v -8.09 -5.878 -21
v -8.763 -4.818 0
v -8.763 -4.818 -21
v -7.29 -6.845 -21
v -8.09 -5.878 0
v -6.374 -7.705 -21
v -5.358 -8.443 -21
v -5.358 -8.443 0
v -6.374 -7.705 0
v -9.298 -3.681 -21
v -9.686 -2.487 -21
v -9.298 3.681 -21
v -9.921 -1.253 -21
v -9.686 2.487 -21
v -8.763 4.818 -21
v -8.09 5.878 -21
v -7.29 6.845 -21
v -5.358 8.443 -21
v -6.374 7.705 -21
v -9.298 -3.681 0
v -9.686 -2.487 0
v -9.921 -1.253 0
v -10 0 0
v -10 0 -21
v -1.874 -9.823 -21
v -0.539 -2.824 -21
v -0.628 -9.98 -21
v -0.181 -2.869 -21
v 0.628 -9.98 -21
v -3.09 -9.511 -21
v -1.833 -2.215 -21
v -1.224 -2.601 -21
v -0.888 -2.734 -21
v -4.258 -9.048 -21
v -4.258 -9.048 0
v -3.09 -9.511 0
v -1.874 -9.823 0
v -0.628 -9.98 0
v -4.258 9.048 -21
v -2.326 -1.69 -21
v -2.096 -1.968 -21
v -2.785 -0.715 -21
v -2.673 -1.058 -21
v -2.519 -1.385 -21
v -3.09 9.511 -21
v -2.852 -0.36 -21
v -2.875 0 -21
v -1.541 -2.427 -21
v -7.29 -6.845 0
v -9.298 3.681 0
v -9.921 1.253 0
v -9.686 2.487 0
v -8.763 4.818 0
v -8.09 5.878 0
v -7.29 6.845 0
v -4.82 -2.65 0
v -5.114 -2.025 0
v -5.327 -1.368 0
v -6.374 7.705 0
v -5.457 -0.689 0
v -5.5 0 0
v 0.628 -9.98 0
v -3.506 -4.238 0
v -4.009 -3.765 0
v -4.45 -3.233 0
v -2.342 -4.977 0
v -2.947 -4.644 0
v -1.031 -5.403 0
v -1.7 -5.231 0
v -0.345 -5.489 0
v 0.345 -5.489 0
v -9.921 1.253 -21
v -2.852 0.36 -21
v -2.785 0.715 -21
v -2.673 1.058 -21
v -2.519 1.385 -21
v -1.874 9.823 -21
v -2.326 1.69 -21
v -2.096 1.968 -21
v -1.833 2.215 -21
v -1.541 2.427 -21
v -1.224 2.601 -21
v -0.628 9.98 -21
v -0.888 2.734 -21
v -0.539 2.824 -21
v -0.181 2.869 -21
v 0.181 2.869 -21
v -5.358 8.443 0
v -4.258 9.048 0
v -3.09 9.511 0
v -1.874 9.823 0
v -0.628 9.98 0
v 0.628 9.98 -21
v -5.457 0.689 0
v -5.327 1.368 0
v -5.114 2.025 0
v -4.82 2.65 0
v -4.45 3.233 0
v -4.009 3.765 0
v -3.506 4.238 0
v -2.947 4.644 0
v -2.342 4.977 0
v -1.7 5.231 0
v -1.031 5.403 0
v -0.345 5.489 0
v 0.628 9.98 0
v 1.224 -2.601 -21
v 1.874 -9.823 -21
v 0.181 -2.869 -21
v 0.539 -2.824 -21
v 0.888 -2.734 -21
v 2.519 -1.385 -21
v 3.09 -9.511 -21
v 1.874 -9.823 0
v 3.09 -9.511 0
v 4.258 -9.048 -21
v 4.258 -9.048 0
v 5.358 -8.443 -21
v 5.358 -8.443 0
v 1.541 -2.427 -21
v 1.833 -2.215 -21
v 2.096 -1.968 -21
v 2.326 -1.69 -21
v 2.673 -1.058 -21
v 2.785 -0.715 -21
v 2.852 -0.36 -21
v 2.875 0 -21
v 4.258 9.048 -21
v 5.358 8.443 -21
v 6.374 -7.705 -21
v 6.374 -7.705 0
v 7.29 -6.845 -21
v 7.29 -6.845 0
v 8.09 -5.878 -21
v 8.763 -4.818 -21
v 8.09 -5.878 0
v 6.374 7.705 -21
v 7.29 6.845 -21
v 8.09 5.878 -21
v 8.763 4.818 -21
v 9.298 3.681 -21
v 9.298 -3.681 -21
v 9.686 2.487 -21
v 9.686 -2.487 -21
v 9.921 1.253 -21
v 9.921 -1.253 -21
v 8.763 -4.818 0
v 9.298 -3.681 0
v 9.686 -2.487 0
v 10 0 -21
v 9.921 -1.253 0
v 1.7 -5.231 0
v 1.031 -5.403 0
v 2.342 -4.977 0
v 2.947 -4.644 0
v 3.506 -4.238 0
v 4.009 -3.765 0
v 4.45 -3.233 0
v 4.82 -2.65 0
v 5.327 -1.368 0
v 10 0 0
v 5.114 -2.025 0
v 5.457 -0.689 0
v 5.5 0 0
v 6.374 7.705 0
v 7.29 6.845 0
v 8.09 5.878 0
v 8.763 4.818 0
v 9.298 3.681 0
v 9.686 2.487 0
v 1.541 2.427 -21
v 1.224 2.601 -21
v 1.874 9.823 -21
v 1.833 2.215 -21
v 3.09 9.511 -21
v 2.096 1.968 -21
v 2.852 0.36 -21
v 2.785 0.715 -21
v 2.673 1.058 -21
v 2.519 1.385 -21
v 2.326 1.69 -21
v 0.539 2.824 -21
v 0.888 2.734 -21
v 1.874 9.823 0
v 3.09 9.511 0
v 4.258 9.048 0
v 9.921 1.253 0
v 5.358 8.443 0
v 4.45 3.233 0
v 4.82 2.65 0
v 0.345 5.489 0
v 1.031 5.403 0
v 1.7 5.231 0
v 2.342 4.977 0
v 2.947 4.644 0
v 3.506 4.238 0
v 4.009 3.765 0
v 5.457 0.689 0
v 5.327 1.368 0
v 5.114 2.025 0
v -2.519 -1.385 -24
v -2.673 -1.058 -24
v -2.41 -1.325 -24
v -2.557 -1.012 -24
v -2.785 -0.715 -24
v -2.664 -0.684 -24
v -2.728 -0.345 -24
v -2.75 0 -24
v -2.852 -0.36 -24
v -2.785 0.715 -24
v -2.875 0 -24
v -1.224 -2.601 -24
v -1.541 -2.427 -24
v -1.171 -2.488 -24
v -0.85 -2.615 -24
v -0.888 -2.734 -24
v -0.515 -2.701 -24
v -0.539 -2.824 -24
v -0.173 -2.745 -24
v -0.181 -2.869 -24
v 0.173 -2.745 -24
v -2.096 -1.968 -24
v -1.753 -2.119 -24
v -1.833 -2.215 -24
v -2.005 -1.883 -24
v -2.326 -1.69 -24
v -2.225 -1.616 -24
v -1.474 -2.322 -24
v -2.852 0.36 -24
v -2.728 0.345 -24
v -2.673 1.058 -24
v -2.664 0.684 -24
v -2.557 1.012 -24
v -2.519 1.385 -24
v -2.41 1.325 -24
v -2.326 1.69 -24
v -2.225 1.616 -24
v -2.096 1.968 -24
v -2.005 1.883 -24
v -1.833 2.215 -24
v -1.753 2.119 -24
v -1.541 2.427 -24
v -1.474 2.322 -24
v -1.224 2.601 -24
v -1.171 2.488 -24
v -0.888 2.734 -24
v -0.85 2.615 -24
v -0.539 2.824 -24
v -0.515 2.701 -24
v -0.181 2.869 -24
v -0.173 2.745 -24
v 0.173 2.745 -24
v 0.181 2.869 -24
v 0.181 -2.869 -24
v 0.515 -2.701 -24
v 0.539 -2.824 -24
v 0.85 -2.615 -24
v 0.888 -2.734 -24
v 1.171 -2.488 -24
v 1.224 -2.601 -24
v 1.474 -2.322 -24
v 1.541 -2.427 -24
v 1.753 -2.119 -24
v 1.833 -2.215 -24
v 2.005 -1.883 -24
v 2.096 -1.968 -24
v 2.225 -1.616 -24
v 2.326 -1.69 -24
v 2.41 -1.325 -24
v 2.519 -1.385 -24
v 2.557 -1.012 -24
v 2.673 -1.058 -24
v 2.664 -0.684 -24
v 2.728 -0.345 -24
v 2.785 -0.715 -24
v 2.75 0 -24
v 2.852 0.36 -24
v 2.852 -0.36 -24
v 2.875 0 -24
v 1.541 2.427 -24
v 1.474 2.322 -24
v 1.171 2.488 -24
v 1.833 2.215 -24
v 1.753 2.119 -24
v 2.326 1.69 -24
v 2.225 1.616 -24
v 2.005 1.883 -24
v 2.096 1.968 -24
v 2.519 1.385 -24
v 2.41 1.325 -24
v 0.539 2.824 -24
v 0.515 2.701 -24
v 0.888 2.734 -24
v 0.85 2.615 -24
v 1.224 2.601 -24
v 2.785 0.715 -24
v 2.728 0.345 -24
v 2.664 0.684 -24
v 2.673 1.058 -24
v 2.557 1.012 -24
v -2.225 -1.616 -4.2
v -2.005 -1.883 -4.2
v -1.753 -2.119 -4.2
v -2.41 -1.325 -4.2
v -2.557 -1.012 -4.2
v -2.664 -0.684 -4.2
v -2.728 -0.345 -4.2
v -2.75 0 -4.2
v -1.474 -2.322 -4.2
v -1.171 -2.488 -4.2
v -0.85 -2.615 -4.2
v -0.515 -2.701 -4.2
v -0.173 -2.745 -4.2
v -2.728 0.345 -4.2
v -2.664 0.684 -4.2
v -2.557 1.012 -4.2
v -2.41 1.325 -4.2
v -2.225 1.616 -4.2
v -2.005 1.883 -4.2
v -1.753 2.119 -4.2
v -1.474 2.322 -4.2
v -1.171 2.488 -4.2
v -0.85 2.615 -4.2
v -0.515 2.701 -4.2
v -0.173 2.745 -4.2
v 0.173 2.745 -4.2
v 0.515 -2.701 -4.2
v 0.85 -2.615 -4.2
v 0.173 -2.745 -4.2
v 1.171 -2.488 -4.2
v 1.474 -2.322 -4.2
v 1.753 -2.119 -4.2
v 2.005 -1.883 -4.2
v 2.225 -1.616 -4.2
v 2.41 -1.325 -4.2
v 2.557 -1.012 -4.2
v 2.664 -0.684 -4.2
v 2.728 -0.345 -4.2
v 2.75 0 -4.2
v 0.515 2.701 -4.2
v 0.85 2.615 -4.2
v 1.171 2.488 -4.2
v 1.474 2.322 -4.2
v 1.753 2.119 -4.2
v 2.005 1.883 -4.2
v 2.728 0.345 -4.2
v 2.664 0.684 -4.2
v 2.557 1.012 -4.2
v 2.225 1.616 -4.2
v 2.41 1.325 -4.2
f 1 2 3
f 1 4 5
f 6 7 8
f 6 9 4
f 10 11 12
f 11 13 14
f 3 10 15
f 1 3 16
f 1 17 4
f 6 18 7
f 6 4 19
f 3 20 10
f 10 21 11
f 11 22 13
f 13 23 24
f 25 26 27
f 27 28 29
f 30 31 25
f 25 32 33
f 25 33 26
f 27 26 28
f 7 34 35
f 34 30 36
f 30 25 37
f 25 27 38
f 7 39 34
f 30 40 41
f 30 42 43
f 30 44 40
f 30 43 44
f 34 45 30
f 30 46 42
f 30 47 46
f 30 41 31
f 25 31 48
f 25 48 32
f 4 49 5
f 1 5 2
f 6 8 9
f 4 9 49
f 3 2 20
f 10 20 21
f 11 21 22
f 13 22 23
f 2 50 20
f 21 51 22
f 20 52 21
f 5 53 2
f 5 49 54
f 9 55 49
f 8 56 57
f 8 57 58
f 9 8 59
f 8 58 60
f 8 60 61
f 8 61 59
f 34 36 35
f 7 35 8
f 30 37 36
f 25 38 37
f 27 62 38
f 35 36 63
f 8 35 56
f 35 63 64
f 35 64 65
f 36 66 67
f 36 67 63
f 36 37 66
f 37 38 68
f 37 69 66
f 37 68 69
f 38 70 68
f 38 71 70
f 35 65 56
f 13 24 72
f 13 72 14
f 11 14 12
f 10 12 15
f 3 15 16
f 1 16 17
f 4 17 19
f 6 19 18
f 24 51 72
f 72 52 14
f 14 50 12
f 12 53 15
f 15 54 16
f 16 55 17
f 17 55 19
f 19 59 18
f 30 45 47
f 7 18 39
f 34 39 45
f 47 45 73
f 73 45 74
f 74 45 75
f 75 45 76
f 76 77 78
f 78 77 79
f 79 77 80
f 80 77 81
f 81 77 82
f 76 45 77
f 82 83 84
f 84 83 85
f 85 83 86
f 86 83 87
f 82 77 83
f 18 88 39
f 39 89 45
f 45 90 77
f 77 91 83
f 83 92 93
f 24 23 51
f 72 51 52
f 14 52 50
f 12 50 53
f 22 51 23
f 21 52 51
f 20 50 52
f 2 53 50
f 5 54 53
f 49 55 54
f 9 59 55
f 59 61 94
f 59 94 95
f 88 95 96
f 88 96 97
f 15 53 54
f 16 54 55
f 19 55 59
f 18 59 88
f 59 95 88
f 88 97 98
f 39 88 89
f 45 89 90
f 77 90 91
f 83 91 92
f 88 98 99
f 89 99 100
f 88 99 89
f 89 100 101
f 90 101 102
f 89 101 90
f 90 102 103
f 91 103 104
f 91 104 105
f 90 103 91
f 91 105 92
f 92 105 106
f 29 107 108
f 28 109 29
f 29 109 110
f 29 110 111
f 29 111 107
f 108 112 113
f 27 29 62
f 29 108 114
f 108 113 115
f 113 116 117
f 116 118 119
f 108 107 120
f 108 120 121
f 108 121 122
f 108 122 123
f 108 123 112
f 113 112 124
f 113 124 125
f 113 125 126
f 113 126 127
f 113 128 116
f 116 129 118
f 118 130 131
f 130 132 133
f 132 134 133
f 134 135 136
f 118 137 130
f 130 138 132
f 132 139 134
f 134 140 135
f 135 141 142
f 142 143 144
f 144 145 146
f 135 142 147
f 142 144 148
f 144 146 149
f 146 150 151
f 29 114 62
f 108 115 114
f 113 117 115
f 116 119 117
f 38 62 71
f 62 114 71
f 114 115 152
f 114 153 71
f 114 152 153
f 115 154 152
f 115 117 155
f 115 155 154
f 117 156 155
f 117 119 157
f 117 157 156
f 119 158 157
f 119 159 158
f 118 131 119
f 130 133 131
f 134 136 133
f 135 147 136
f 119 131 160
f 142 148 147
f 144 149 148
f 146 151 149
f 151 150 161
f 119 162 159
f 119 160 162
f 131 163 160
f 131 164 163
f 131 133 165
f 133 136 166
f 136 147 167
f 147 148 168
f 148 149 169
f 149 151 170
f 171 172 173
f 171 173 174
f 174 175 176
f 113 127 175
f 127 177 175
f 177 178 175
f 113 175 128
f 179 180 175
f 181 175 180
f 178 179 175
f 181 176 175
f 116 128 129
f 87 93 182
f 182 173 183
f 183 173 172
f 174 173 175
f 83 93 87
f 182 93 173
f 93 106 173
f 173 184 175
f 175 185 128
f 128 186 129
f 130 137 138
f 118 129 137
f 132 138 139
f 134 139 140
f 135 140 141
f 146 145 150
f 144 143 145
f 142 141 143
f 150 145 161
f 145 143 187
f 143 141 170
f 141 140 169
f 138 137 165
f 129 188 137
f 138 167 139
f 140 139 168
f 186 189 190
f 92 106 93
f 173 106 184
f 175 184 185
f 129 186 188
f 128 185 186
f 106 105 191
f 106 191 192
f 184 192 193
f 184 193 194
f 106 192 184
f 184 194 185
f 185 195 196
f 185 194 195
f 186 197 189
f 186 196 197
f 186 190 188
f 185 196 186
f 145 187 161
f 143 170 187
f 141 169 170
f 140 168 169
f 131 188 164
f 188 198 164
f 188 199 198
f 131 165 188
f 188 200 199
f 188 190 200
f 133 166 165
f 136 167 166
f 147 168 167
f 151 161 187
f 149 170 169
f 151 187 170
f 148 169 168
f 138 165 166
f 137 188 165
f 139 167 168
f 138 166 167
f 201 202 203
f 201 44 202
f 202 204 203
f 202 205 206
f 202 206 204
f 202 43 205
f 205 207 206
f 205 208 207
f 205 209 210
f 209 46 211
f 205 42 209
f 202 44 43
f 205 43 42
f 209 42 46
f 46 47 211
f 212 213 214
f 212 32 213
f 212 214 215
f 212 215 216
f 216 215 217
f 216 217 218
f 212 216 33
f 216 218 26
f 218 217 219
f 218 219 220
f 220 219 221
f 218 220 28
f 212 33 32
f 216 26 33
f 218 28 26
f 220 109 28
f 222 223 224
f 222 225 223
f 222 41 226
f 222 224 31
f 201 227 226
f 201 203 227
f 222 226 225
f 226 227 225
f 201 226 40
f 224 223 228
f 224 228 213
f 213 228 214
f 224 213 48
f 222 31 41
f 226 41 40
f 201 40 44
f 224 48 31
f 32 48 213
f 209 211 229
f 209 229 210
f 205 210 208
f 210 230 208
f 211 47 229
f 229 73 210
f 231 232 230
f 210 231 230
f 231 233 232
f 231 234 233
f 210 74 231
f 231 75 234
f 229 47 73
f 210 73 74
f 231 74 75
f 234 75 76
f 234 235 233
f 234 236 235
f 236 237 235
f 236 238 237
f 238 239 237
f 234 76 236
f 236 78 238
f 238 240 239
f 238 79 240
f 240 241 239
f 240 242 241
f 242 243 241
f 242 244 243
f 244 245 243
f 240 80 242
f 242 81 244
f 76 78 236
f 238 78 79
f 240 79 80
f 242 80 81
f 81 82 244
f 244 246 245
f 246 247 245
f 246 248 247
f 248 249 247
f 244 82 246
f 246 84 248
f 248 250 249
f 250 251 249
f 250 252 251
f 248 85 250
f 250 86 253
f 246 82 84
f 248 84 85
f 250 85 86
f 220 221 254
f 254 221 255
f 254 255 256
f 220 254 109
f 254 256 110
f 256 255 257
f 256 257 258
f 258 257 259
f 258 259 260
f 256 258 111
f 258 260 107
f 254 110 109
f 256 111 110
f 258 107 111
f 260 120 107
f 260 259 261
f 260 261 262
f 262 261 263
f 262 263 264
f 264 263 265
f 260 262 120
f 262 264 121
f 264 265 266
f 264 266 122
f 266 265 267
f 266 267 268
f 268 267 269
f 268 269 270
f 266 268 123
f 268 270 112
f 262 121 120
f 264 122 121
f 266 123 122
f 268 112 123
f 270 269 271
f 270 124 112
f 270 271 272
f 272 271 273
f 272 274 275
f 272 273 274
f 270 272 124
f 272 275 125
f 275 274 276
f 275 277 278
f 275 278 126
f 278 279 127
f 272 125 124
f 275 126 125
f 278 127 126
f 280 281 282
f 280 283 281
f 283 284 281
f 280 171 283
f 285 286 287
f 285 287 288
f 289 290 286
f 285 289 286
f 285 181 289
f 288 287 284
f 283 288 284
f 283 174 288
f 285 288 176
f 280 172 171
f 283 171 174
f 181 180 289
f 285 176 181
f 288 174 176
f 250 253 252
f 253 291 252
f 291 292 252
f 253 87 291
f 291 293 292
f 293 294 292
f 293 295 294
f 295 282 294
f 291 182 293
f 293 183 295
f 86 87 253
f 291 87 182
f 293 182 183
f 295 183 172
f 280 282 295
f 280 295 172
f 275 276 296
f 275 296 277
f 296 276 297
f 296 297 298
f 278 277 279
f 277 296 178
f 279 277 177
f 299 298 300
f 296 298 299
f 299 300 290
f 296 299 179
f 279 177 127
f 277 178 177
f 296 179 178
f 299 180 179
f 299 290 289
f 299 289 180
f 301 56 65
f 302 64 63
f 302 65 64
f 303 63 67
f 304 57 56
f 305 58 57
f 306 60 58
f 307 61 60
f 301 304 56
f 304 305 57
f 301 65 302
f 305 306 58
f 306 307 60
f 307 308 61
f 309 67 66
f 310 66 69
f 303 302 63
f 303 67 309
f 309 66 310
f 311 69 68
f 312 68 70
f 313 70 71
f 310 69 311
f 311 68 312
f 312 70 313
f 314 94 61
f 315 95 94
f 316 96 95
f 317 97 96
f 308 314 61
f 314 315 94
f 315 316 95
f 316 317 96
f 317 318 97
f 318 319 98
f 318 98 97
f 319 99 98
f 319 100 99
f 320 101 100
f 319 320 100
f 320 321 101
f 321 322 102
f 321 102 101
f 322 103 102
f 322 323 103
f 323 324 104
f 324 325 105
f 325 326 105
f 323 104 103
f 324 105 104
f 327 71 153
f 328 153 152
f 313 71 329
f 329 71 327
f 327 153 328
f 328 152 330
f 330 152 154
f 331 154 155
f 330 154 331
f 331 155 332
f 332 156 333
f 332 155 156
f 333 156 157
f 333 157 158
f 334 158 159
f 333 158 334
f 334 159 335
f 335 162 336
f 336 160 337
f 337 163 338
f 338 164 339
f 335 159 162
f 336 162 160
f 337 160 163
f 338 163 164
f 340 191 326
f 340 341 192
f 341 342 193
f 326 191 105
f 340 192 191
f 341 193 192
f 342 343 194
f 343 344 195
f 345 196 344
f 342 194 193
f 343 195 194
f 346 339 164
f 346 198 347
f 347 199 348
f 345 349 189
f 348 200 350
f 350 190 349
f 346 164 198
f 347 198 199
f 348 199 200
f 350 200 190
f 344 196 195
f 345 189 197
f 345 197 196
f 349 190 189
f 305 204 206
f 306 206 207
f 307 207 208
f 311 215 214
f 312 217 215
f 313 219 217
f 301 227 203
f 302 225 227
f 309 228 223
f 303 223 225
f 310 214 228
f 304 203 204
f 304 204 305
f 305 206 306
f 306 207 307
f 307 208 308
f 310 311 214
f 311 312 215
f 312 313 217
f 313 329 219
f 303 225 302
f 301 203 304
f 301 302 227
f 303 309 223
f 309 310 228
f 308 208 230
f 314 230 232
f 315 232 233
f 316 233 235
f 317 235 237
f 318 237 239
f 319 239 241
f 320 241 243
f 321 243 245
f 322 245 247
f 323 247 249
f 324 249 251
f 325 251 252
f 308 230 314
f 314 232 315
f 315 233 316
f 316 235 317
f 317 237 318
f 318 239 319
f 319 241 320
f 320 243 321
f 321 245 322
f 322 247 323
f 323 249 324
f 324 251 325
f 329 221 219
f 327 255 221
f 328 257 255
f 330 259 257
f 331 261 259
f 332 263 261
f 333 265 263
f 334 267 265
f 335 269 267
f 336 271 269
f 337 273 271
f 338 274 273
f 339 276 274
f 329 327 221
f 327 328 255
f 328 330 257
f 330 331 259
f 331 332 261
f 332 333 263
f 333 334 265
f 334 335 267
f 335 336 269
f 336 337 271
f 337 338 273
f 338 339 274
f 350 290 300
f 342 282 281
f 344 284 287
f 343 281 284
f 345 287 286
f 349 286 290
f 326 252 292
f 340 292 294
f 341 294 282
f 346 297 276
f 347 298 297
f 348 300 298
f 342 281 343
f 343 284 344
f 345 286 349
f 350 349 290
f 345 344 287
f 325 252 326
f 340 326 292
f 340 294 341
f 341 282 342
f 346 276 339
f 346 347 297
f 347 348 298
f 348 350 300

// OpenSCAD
$fn = 50;


difference() {
	union() {
		translate(v = [0, 0, -21.0000000000]) {
			cylinder(h = 21, r = 10.0000000000);
		}
		#translate(v = [0, 0, -24.0000000000]) {
			cylinder(h = 24, r = 2.8750000000);
		}
	}
	union() {
		translate(v = [0, 0, 0]) {
			rotate(a = [0, 0, 0]) {
				difference() {
					union() {
						translate(v = [0, 0, -24.0000000000]) {
							cylinder(h = 24, r = 2.2500000000);
						}
						translate(v = [0, 0, -4.2000000000]) {
							cylinder(h = 4.2000000000, r1 = 2.7500000000, r2 = 5.5000000000);
						}
						translate(v = [0, 0, -24.0000000000]) {
							cylinder(h = 24, r = 2.7500000000);
						}
						translate(v = [0, 0, -24.0000000000]) {
							cylinder(h = 24, r = 2.2500000000);
						}
					}
					union();
				}
			}
		}
	}
}
